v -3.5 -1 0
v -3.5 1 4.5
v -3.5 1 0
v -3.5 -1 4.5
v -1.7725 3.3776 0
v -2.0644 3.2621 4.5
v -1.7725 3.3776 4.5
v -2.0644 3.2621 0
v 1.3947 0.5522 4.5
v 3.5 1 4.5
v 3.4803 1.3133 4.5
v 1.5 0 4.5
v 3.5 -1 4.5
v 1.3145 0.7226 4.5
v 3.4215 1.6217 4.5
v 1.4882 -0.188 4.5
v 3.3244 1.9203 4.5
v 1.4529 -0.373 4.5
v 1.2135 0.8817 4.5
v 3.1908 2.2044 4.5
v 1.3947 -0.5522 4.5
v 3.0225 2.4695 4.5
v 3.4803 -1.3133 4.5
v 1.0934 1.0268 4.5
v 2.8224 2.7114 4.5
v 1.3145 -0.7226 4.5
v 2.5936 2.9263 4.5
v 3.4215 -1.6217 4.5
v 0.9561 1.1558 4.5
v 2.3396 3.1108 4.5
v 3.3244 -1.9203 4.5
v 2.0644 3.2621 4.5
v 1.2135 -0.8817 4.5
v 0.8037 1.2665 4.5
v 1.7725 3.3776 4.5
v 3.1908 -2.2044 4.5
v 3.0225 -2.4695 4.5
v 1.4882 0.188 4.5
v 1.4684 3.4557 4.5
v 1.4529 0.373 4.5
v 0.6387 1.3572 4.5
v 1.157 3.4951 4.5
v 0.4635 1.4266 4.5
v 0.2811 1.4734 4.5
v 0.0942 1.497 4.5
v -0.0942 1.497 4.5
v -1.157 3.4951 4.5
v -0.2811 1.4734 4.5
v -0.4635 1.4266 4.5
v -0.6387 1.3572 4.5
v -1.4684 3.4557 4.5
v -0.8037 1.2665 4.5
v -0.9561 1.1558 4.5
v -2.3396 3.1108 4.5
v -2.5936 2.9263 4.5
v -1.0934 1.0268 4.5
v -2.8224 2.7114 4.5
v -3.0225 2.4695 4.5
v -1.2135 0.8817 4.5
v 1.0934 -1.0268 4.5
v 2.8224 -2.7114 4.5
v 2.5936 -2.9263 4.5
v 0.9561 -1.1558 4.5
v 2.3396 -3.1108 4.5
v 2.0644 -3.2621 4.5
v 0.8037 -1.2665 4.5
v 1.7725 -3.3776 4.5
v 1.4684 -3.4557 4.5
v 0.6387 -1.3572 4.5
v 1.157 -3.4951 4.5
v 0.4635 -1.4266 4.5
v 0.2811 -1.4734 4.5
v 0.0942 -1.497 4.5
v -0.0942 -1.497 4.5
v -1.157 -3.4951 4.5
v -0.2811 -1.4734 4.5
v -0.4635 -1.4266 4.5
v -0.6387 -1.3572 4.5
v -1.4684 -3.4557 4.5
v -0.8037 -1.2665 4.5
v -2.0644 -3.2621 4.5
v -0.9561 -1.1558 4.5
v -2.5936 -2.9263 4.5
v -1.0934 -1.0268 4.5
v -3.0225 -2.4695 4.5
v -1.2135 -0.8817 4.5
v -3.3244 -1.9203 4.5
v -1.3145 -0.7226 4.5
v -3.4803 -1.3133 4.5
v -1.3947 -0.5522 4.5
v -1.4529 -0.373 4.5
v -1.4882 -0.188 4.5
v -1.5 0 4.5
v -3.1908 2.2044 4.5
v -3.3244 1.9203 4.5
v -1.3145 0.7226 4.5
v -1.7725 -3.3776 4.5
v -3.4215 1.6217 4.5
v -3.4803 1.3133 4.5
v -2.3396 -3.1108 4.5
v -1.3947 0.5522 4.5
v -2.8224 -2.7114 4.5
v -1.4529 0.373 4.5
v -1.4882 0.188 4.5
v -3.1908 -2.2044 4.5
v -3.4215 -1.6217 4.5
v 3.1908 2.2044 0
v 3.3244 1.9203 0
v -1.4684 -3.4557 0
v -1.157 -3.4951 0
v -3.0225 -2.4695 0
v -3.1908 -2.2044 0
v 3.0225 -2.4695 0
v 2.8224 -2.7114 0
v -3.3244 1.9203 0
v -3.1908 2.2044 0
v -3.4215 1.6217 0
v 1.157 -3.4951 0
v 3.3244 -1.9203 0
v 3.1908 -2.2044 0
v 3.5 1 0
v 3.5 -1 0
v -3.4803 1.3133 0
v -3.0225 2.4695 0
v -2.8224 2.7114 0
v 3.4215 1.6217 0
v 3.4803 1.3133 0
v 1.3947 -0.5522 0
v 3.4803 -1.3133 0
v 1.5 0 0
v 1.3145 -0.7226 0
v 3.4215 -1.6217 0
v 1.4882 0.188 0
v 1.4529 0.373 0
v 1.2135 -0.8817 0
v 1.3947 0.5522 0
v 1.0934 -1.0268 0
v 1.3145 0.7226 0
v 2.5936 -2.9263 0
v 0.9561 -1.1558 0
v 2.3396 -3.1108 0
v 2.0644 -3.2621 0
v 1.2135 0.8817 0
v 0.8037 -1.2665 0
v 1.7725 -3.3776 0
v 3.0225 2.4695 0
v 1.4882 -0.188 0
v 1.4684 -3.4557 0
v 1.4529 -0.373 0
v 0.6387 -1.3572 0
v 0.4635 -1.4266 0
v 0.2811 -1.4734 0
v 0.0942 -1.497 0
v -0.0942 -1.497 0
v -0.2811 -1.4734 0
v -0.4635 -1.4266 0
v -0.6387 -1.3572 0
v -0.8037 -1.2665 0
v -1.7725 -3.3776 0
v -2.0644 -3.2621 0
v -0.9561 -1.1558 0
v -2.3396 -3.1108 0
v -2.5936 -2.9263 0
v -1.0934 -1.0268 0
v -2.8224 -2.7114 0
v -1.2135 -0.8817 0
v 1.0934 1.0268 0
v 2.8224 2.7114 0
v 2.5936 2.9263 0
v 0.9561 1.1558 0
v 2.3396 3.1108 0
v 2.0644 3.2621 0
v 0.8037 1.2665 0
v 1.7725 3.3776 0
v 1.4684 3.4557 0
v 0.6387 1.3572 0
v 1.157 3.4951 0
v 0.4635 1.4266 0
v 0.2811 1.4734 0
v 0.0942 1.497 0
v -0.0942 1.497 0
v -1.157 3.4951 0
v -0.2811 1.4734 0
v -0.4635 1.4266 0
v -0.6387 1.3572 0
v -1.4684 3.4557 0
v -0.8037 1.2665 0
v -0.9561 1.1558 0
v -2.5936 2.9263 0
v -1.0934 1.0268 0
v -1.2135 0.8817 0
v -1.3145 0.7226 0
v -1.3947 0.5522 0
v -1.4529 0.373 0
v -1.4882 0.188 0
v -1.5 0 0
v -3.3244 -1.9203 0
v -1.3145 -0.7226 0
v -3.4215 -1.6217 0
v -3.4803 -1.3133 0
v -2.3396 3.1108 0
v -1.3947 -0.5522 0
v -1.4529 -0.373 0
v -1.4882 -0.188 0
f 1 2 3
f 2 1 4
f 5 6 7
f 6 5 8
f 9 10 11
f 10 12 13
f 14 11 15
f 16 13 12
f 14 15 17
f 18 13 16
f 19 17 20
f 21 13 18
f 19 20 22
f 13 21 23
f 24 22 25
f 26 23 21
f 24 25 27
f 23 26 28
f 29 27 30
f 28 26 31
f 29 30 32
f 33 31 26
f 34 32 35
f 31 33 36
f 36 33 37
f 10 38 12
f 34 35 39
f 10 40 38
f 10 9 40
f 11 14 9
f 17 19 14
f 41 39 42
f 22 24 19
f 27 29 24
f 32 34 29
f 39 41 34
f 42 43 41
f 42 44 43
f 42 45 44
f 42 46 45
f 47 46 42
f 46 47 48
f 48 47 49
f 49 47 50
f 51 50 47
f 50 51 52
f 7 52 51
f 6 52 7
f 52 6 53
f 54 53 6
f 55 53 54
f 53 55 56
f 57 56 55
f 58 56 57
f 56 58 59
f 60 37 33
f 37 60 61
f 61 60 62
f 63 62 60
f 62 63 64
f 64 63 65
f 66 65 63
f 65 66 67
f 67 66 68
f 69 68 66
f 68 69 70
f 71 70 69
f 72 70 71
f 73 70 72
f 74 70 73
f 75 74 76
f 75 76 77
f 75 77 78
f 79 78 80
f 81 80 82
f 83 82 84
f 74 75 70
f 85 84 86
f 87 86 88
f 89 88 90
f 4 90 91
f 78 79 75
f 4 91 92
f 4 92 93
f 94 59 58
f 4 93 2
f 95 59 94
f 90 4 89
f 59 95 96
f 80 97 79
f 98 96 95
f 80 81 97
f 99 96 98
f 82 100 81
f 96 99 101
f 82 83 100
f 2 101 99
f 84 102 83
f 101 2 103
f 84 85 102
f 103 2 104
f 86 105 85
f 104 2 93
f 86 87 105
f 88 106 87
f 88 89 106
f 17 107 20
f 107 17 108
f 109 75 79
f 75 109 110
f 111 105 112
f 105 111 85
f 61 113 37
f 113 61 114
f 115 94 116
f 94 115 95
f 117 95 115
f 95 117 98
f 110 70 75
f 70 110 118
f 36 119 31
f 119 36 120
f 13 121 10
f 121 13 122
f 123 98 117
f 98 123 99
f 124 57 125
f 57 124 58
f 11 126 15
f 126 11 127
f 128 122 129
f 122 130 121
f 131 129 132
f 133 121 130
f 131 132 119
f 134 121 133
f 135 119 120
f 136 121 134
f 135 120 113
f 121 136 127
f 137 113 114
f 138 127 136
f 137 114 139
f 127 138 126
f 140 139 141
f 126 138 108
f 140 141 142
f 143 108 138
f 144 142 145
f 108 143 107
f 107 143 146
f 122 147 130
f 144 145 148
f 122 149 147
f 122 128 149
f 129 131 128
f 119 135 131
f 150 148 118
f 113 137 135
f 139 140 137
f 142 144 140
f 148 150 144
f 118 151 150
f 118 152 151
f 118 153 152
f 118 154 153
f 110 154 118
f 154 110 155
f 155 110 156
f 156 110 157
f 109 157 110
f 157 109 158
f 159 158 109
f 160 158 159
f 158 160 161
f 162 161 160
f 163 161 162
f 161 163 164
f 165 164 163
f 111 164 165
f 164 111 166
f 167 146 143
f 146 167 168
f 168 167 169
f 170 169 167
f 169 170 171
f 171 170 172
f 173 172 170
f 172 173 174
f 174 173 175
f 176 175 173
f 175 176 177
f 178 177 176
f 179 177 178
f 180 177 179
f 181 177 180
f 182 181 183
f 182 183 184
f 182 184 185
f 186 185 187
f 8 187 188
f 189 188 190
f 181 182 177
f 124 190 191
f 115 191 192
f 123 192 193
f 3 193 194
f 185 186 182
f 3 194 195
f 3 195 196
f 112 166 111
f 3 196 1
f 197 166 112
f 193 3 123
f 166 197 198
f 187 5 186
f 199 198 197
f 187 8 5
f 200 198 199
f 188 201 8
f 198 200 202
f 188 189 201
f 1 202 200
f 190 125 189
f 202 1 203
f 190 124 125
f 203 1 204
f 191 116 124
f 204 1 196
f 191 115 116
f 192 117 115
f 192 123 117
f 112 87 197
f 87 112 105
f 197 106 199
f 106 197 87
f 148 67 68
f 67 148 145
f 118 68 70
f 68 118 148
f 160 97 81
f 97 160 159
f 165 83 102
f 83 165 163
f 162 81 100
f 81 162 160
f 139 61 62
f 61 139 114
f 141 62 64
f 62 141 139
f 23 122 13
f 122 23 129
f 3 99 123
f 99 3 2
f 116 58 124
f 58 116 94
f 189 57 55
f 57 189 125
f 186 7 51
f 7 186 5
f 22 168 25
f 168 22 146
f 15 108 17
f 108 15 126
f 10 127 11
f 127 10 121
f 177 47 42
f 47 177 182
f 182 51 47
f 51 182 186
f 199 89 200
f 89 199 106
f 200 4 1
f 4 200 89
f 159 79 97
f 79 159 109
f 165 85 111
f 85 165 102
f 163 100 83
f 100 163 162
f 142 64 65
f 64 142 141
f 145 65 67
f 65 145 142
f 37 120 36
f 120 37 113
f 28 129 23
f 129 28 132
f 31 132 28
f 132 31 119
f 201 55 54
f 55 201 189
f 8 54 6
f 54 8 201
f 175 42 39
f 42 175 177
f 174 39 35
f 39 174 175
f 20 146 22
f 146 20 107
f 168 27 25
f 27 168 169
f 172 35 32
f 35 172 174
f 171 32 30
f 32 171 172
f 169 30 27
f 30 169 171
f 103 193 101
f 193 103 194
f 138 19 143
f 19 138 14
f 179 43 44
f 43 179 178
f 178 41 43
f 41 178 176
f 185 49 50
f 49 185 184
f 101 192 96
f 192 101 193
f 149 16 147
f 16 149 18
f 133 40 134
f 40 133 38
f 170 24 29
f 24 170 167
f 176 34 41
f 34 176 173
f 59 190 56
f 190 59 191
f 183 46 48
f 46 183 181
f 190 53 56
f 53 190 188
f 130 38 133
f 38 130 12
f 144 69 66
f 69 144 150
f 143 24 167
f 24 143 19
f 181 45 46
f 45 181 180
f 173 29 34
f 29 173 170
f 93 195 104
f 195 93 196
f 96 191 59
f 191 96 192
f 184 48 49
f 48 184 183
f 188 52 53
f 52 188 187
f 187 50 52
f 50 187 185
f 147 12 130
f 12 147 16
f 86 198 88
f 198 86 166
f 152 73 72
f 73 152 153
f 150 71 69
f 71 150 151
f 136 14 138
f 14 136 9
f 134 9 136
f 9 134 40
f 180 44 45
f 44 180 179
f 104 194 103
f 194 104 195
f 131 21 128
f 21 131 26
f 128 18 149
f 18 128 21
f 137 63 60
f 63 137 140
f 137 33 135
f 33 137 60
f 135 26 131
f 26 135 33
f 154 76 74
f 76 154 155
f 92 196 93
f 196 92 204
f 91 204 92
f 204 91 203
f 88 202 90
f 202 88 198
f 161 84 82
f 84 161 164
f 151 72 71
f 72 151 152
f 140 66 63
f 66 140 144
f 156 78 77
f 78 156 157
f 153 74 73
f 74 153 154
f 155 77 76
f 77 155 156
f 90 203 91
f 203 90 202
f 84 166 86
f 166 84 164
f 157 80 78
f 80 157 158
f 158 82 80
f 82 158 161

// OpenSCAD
$fn = 50;


difference() {
	union() {
		translate(v = [0, 0, 0]) {
			rotate(a = [0, 0, 0]) {
				hull() {
					translate(v = [-1.0000000000, 1.0000000000, 0]) {
						rotate(a = [0, 0, 0]) {
							translate(v = [0, 0, 0]) {
								rotate(a = [0, 0, 0]) {
									cylinder(h = 4.5000000000, r = 2.5000000000);
								}
							}
						}
					}
					translate(v = [1.0000000000, 1.0000000000, 0]) {
						rotate(a = [0, 0, 0]) {
							translate(v = [0, 0, 0]) {
								rotate(a = [0, 0, 0]) {
									cylinder(h = 4.5000000000, r = 2.5000000000);
								}
							}
						}
					}
					translate(v = [-1.0000000000, -1.0000000000, 0]) {
						rotate(a = [0, 0, 0]) {
							translate(v = [0, 0, 0]) {
								rotate(a = [0, 0, 0]) {
									cylinder(h = 4.5000000000, r = 2.5000000000);
								}
							}
						}
					}
					translate(v = [1.0000000000, -1.0000000000, 0]) {
						rotate(a = [0, 0, 0]) {
							translate(v = [0, 0, 0]) {
								rotate(a = [0, 0, 0]) {
									cylinder(h = 4.5000000000, r = 2.5000000000);
								}
							}
						}
					}
				}
			}
		}
	}
	union() {
		translate(v = [0.0000000000, 0.0000000000, 0]) {
			rotate(a = [0, 0, 0]) {
				translate(v = [0, 0, -50]) {
					rotate(a = [0, 0, 0]) {
						cylinder(h = 100, r = 1.5000000000);
					}
				}
			}
		}
	}
}
